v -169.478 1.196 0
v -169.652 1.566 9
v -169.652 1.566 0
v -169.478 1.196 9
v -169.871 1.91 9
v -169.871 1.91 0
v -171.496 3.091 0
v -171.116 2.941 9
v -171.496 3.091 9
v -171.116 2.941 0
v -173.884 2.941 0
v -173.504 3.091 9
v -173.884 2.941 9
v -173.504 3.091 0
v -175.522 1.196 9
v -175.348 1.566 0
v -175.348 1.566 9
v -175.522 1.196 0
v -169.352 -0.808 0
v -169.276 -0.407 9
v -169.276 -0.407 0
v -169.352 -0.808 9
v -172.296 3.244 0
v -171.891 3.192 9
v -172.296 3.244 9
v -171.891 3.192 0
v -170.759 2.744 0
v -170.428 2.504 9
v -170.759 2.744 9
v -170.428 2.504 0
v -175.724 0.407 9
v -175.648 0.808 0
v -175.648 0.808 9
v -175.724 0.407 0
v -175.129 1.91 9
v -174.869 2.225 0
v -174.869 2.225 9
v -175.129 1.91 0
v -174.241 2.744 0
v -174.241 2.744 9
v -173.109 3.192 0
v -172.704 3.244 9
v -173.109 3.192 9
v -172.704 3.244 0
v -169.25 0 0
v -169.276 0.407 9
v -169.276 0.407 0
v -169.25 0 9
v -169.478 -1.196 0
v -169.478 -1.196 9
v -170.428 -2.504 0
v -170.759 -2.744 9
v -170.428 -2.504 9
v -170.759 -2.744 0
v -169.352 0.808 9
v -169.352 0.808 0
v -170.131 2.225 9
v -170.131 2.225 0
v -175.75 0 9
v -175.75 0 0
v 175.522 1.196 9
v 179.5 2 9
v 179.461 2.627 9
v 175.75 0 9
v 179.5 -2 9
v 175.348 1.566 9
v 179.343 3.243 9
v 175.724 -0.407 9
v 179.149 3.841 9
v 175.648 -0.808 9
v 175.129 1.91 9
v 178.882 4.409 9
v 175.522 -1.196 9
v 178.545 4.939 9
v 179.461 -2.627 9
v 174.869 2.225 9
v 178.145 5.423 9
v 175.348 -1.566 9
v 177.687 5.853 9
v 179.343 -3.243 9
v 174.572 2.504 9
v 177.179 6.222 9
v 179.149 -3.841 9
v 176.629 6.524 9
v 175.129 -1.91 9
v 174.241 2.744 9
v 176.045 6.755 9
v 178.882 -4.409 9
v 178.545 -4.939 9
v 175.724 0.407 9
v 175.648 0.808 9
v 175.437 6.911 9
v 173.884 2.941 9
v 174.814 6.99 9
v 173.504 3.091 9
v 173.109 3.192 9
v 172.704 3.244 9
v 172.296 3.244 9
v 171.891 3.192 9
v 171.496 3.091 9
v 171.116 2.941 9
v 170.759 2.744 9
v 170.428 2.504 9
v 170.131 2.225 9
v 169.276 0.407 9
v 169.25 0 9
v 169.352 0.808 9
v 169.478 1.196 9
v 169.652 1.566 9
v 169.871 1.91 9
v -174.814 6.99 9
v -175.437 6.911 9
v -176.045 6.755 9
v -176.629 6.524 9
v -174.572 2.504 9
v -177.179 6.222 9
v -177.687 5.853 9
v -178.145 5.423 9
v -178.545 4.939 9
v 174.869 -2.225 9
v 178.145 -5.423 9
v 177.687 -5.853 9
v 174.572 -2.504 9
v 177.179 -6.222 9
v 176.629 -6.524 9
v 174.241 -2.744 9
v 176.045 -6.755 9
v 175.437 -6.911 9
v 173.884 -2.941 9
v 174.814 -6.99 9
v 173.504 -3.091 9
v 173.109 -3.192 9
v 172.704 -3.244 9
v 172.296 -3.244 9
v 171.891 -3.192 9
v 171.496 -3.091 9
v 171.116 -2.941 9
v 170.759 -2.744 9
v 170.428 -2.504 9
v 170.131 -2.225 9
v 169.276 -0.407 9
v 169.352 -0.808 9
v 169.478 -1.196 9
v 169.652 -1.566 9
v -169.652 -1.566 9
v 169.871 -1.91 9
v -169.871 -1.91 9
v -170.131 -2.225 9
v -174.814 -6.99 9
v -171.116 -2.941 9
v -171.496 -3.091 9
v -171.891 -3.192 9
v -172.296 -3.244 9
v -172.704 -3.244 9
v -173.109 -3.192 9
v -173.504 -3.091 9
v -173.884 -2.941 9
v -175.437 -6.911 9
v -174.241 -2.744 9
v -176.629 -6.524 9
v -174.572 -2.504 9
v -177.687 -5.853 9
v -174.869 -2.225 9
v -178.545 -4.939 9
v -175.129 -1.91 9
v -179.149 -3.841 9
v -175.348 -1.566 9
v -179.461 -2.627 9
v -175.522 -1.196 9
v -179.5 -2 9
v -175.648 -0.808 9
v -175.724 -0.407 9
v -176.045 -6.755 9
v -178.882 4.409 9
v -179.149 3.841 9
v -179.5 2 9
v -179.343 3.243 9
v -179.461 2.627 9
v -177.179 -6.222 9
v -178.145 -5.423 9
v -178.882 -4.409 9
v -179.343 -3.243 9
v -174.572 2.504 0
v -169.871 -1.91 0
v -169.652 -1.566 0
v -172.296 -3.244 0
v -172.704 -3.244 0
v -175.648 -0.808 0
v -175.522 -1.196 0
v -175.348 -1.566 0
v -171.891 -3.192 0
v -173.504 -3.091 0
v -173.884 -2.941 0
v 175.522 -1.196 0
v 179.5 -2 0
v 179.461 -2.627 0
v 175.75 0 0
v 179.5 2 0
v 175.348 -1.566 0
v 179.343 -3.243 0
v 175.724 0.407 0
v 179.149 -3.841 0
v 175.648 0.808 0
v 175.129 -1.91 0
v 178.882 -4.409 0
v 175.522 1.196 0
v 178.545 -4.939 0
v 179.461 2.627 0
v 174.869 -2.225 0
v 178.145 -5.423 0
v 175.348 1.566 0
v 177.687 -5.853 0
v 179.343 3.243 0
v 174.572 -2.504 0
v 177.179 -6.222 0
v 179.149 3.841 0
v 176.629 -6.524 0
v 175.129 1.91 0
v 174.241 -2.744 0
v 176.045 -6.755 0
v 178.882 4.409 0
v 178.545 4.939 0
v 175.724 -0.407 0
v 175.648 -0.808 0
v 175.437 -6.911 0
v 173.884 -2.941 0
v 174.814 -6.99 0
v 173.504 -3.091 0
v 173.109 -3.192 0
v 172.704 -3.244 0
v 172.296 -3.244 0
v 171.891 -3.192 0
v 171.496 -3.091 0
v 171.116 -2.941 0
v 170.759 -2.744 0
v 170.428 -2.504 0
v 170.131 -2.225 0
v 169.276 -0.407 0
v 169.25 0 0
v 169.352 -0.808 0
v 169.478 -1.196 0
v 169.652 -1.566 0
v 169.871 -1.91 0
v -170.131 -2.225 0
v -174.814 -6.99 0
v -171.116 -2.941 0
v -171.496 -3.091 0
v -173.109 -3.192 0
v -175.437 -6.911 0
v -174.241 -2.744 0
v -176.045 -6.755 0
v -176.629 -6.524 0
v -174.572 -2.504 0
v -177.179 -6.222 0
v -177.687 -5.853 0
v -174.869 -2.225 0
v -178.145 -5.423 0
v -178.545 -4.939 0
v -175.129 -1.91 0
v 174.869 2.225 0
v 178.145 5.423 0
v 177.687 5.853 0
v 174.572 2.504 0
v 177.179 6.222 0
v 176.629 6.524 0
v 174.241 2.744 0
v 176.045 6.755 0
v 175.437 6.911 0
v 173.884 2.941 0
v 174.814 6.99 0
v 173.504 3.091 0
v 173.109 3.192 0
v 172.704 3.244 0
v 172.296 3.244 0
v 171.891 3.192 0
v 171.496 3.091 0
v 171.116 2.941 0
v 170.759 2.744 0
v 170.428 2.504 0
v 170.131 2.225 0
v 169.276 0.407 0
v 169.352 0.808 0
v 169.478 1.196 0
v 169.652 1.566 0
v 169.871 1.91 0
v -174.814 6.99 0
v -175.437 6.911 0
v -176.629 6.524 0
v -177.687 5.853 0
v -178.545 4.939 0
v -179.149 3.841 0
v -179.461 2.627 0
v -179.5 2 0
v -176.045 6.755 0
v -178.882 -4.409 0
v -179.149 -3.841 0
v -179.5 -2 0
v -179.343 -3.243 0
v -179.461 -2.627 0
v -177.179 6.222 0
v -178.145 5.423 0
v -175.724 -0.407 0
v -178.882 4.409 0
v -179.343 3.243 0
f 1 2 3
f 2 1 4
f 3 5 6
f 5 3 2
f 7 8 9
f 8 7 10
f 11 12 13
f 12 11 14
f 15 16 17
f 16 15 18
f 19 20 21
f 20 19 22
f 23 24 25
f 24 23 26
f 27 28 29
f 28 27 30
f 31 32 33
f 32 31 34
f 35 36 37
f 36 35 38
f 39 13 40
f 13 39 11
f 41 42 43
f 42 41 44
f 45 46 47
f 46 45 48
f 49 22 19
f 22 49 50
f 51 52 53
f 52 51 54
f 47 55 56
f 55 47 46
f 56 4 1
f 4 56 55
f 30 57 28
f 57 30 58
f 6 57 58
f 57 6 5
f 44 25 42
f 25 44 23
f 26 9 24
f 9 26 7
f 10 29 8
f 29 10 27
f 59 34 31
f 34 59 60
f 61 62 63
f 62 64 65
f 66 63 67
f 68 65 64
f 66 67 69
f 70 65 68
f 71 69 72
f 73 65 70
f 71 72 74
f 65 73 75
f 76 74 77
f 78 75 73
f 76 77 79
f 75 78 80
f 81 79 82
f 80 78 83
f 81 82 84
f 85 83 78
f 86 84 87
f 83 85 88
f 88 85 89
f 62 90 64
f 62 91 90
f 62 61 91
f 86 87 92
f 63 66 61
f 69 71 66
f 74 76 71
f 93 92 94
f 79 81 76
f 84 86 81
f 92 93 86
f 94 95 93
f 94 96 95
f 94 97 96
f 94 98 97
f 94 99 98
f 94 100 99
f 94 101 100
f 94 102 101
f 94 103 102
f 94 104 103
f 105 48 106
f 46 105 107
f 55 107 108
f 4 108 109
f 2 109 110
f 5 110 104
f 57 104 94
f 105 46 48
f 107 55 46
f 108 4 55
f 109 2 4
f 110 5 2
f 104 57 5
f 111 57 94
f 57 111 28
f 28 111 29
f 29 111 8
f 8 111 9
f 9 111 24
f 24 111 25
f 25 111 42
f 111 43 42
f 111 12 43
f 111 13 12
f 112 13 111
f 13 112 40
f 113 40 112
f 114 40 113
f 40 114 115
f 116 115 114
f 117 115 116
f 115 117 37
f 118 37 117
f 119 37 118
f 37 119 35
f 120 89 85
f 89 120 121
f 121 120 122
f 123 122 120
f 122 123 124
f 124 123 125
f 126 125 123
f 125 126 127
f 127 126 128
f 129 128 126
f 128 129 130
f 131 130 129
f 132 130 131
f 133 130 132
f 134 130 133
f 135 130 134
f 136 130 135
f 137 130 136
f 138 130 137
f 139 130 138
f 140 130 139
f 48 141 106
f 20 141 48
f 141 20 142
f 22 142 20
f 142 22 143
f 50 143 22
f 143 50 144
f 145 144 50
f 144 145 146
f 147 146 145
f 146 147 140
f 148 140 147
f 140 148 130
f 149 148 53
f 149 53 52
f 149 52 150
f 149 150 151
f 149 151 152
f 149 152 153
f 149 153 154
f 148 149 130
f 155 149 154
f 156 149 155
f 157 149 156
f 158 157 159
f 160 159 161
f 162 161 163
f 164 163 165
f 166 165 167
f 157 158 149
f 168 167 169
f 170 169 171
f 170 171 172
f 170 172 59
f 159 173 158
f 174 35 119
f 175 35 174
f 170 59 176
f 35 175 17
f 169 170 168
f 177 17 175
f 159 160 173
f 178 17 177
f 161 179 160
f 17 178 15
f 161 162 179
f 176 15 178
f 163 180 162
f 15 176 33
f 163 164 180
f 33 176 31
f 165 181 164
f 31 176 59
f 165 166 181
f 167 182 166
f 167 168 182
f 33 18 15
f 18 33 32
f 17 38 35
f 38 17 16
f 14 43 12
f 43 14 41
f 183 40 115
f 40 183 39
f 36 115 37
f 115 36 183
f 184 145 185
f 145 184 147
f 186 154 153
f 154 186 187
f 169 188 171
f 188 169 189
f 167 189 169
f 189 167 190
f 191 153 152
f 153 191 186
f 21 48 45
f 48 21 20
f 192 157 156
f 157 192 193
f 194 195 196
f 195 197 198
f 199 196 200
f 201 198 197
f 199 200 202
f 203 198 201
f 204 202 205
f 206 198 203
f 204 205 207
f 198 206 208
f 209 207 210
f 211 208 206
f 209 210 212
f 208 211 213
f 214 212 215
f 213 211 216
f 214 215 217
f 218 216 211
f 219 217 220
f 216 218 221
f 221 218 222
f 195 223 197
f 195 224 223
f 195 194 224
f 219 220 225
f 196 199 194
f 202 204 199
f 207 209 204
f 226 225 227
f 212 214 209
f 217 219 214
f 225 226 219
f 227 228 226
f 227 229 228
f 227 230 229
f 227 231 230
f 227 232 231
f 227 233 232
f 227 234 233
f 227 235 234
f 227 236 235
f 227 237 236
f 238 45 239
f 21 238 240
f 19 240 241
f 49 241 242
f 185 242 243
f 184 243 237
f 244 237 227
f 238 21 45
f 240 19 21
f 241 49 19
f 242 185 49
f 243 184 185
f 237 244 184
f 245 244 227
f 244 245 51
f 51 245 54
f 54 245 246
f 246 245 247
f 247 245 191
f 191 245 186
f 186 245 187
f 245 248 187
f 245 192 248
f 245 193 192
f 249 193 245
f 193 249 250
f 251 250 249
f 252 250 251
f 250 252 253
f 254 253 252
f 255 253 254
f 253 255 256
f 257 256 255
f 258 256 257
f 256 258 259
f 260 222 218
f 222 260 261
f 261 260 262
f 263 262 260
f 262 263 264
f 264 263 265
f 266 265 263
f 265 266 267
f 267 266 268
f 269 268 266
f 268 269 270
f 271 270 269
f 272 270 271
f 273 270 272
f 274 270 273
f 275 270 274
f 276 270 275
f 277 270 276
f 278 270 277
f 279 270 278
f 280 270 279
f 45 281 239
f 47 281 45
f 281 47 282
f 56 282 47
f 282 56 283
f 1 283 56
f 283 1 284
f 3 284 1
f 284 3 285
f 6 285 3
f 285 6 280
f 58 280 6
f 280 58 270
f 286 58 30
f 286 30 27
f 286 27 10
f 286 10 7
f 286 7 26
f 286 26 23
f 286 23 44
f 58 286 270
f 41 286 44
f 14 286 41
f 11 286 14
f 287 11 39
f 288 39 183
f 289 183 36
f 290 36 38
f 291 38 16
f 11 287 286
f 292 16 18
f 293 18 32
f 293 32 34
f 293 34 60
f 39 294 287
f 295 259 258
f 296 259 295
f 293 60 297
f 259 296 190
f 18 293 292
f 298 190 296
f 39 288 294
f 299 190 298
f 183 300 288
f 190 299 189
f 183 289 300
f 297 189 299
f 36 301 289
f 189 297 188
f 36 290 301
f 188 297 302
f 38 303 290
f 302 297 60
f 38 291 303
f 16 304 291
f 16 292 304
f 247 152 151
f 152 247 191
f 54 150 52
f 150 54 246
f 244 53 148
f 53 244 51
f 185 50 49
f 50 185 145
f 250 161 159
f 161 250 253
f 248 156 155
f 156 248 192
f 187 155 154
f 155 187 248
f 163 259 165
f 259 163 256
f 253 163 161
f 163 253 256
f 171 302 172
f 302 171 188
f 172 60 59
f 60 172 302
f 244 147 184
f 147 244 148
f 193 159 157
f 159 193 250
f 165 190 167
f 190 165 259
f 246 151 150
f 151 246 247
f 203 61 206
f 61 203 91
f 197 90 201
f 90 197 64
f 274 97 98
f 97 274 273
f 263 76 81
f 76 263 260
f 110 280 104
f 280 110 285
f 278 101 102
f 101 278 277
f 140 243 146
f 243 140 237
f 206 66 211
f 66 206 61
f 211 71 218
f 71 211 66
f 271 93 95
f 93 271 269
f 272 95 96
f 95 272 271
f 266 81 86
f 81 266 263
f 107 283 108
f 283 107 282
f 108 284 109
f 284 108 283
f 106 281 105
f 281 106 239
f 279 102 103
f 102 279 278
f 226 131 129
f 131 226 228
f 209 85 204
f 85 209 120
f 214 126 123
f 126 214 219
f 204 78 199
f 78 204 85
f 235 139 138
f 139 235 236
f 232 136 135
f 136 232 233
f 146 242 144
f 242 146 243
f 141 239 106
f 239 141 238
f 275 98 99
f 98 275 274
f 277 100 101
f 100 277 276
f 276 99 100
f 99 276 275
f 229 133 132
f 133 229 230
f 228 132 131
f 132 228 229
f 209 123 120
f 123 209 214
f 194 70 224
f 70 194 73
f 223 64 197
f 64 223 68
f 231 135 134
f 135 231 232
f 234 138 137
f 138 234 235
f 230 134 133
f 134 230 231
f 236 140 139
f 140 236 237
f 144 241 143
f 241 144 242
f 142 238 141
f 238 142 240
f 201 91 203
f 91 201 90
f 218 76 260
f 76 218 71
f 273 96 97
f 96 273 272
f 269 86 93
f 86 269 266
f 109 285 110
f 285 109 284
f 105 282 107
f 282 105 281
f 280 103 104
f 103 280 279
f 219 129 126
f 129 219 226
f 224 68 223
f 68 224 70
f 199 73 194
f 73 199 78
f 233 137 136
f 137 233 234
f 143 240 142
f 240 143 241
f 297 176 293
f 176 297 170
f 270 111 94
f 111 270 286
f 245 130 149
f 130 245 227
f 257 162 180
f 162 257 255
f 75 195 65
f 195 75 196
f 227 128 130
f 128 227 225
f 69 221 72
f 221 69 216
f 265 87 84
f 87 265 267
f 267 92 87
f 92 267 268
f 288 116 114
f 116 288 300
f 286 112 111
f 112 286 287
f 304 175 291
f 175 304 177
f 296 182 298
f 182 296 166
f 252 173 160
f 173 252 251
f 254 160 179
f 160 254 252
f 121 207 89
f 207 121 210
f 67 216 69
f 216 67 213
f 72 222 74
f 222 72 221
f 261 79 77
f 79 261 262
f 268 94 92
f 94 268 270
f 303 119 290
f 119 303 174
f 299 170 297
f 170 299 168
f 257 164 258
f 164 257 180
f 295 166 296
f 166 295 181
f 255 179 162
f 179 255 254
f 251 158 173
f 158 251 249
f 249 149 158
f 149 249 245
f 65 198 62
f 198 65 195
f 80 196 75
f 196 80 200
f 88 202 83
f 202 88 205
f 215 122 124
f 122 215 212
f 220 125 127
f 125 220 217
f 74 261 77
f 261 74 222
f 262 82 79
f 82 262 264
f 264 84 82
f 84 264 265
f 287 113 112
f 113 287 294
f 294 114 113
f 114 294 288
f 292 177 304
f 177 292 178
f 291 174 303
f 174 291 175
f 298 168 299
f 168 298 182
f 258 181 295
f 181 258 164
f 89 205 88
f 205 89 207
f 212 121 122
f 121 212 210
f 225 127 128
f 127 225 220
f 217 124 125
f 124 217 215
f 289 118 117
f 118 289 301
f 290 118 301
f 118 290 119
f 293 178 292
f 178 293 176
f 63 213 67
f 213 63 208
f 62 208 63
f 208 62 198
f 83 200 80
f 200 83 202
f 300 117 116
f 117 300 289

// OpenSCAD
$fn = 50;


difference() {
	union() {
		hull() {
			translate(v = [-174.5000000000, 2.0000000000, 0]) {
				cylinder(h = 9, r = 5);
			}
			translate(v = [174.5000000000, 2.0000000000, 0]) {
				cylinder(h = 9, r = 5);
			}
			translate(v = [-174.5000000000, -2.0000000000, 0]) {
				cylinder(h = 9, r = 5);
			}
			translate(v = [174.5000000000, -2.0000000000, 0]) {
				cylinder(h = 9, r = 5);
			}
		}
	}
	union() {
		translate(v = [-172.5000000000, 0.0000000000, -100.0000000000]) {
			cylinder(h = 200, r = 3.2500000000);
		}
		translate(v = [-172.5000000000, 0.0000000000, -100.0000000000]) {
			cylinder(h = 200, r = 3.2500000000);
		}
		translate(v = [172.5000000000, 0.0000000000, -100.0000000000]) {
			cylinder(h = 200, r = 3.2500000000);
		}
		translate(v = [172.5000000000, 0.0000000000, -100.0000000000]) {
			cylinder(h = 200, r = 3.2500000000);
		}
	}
}
